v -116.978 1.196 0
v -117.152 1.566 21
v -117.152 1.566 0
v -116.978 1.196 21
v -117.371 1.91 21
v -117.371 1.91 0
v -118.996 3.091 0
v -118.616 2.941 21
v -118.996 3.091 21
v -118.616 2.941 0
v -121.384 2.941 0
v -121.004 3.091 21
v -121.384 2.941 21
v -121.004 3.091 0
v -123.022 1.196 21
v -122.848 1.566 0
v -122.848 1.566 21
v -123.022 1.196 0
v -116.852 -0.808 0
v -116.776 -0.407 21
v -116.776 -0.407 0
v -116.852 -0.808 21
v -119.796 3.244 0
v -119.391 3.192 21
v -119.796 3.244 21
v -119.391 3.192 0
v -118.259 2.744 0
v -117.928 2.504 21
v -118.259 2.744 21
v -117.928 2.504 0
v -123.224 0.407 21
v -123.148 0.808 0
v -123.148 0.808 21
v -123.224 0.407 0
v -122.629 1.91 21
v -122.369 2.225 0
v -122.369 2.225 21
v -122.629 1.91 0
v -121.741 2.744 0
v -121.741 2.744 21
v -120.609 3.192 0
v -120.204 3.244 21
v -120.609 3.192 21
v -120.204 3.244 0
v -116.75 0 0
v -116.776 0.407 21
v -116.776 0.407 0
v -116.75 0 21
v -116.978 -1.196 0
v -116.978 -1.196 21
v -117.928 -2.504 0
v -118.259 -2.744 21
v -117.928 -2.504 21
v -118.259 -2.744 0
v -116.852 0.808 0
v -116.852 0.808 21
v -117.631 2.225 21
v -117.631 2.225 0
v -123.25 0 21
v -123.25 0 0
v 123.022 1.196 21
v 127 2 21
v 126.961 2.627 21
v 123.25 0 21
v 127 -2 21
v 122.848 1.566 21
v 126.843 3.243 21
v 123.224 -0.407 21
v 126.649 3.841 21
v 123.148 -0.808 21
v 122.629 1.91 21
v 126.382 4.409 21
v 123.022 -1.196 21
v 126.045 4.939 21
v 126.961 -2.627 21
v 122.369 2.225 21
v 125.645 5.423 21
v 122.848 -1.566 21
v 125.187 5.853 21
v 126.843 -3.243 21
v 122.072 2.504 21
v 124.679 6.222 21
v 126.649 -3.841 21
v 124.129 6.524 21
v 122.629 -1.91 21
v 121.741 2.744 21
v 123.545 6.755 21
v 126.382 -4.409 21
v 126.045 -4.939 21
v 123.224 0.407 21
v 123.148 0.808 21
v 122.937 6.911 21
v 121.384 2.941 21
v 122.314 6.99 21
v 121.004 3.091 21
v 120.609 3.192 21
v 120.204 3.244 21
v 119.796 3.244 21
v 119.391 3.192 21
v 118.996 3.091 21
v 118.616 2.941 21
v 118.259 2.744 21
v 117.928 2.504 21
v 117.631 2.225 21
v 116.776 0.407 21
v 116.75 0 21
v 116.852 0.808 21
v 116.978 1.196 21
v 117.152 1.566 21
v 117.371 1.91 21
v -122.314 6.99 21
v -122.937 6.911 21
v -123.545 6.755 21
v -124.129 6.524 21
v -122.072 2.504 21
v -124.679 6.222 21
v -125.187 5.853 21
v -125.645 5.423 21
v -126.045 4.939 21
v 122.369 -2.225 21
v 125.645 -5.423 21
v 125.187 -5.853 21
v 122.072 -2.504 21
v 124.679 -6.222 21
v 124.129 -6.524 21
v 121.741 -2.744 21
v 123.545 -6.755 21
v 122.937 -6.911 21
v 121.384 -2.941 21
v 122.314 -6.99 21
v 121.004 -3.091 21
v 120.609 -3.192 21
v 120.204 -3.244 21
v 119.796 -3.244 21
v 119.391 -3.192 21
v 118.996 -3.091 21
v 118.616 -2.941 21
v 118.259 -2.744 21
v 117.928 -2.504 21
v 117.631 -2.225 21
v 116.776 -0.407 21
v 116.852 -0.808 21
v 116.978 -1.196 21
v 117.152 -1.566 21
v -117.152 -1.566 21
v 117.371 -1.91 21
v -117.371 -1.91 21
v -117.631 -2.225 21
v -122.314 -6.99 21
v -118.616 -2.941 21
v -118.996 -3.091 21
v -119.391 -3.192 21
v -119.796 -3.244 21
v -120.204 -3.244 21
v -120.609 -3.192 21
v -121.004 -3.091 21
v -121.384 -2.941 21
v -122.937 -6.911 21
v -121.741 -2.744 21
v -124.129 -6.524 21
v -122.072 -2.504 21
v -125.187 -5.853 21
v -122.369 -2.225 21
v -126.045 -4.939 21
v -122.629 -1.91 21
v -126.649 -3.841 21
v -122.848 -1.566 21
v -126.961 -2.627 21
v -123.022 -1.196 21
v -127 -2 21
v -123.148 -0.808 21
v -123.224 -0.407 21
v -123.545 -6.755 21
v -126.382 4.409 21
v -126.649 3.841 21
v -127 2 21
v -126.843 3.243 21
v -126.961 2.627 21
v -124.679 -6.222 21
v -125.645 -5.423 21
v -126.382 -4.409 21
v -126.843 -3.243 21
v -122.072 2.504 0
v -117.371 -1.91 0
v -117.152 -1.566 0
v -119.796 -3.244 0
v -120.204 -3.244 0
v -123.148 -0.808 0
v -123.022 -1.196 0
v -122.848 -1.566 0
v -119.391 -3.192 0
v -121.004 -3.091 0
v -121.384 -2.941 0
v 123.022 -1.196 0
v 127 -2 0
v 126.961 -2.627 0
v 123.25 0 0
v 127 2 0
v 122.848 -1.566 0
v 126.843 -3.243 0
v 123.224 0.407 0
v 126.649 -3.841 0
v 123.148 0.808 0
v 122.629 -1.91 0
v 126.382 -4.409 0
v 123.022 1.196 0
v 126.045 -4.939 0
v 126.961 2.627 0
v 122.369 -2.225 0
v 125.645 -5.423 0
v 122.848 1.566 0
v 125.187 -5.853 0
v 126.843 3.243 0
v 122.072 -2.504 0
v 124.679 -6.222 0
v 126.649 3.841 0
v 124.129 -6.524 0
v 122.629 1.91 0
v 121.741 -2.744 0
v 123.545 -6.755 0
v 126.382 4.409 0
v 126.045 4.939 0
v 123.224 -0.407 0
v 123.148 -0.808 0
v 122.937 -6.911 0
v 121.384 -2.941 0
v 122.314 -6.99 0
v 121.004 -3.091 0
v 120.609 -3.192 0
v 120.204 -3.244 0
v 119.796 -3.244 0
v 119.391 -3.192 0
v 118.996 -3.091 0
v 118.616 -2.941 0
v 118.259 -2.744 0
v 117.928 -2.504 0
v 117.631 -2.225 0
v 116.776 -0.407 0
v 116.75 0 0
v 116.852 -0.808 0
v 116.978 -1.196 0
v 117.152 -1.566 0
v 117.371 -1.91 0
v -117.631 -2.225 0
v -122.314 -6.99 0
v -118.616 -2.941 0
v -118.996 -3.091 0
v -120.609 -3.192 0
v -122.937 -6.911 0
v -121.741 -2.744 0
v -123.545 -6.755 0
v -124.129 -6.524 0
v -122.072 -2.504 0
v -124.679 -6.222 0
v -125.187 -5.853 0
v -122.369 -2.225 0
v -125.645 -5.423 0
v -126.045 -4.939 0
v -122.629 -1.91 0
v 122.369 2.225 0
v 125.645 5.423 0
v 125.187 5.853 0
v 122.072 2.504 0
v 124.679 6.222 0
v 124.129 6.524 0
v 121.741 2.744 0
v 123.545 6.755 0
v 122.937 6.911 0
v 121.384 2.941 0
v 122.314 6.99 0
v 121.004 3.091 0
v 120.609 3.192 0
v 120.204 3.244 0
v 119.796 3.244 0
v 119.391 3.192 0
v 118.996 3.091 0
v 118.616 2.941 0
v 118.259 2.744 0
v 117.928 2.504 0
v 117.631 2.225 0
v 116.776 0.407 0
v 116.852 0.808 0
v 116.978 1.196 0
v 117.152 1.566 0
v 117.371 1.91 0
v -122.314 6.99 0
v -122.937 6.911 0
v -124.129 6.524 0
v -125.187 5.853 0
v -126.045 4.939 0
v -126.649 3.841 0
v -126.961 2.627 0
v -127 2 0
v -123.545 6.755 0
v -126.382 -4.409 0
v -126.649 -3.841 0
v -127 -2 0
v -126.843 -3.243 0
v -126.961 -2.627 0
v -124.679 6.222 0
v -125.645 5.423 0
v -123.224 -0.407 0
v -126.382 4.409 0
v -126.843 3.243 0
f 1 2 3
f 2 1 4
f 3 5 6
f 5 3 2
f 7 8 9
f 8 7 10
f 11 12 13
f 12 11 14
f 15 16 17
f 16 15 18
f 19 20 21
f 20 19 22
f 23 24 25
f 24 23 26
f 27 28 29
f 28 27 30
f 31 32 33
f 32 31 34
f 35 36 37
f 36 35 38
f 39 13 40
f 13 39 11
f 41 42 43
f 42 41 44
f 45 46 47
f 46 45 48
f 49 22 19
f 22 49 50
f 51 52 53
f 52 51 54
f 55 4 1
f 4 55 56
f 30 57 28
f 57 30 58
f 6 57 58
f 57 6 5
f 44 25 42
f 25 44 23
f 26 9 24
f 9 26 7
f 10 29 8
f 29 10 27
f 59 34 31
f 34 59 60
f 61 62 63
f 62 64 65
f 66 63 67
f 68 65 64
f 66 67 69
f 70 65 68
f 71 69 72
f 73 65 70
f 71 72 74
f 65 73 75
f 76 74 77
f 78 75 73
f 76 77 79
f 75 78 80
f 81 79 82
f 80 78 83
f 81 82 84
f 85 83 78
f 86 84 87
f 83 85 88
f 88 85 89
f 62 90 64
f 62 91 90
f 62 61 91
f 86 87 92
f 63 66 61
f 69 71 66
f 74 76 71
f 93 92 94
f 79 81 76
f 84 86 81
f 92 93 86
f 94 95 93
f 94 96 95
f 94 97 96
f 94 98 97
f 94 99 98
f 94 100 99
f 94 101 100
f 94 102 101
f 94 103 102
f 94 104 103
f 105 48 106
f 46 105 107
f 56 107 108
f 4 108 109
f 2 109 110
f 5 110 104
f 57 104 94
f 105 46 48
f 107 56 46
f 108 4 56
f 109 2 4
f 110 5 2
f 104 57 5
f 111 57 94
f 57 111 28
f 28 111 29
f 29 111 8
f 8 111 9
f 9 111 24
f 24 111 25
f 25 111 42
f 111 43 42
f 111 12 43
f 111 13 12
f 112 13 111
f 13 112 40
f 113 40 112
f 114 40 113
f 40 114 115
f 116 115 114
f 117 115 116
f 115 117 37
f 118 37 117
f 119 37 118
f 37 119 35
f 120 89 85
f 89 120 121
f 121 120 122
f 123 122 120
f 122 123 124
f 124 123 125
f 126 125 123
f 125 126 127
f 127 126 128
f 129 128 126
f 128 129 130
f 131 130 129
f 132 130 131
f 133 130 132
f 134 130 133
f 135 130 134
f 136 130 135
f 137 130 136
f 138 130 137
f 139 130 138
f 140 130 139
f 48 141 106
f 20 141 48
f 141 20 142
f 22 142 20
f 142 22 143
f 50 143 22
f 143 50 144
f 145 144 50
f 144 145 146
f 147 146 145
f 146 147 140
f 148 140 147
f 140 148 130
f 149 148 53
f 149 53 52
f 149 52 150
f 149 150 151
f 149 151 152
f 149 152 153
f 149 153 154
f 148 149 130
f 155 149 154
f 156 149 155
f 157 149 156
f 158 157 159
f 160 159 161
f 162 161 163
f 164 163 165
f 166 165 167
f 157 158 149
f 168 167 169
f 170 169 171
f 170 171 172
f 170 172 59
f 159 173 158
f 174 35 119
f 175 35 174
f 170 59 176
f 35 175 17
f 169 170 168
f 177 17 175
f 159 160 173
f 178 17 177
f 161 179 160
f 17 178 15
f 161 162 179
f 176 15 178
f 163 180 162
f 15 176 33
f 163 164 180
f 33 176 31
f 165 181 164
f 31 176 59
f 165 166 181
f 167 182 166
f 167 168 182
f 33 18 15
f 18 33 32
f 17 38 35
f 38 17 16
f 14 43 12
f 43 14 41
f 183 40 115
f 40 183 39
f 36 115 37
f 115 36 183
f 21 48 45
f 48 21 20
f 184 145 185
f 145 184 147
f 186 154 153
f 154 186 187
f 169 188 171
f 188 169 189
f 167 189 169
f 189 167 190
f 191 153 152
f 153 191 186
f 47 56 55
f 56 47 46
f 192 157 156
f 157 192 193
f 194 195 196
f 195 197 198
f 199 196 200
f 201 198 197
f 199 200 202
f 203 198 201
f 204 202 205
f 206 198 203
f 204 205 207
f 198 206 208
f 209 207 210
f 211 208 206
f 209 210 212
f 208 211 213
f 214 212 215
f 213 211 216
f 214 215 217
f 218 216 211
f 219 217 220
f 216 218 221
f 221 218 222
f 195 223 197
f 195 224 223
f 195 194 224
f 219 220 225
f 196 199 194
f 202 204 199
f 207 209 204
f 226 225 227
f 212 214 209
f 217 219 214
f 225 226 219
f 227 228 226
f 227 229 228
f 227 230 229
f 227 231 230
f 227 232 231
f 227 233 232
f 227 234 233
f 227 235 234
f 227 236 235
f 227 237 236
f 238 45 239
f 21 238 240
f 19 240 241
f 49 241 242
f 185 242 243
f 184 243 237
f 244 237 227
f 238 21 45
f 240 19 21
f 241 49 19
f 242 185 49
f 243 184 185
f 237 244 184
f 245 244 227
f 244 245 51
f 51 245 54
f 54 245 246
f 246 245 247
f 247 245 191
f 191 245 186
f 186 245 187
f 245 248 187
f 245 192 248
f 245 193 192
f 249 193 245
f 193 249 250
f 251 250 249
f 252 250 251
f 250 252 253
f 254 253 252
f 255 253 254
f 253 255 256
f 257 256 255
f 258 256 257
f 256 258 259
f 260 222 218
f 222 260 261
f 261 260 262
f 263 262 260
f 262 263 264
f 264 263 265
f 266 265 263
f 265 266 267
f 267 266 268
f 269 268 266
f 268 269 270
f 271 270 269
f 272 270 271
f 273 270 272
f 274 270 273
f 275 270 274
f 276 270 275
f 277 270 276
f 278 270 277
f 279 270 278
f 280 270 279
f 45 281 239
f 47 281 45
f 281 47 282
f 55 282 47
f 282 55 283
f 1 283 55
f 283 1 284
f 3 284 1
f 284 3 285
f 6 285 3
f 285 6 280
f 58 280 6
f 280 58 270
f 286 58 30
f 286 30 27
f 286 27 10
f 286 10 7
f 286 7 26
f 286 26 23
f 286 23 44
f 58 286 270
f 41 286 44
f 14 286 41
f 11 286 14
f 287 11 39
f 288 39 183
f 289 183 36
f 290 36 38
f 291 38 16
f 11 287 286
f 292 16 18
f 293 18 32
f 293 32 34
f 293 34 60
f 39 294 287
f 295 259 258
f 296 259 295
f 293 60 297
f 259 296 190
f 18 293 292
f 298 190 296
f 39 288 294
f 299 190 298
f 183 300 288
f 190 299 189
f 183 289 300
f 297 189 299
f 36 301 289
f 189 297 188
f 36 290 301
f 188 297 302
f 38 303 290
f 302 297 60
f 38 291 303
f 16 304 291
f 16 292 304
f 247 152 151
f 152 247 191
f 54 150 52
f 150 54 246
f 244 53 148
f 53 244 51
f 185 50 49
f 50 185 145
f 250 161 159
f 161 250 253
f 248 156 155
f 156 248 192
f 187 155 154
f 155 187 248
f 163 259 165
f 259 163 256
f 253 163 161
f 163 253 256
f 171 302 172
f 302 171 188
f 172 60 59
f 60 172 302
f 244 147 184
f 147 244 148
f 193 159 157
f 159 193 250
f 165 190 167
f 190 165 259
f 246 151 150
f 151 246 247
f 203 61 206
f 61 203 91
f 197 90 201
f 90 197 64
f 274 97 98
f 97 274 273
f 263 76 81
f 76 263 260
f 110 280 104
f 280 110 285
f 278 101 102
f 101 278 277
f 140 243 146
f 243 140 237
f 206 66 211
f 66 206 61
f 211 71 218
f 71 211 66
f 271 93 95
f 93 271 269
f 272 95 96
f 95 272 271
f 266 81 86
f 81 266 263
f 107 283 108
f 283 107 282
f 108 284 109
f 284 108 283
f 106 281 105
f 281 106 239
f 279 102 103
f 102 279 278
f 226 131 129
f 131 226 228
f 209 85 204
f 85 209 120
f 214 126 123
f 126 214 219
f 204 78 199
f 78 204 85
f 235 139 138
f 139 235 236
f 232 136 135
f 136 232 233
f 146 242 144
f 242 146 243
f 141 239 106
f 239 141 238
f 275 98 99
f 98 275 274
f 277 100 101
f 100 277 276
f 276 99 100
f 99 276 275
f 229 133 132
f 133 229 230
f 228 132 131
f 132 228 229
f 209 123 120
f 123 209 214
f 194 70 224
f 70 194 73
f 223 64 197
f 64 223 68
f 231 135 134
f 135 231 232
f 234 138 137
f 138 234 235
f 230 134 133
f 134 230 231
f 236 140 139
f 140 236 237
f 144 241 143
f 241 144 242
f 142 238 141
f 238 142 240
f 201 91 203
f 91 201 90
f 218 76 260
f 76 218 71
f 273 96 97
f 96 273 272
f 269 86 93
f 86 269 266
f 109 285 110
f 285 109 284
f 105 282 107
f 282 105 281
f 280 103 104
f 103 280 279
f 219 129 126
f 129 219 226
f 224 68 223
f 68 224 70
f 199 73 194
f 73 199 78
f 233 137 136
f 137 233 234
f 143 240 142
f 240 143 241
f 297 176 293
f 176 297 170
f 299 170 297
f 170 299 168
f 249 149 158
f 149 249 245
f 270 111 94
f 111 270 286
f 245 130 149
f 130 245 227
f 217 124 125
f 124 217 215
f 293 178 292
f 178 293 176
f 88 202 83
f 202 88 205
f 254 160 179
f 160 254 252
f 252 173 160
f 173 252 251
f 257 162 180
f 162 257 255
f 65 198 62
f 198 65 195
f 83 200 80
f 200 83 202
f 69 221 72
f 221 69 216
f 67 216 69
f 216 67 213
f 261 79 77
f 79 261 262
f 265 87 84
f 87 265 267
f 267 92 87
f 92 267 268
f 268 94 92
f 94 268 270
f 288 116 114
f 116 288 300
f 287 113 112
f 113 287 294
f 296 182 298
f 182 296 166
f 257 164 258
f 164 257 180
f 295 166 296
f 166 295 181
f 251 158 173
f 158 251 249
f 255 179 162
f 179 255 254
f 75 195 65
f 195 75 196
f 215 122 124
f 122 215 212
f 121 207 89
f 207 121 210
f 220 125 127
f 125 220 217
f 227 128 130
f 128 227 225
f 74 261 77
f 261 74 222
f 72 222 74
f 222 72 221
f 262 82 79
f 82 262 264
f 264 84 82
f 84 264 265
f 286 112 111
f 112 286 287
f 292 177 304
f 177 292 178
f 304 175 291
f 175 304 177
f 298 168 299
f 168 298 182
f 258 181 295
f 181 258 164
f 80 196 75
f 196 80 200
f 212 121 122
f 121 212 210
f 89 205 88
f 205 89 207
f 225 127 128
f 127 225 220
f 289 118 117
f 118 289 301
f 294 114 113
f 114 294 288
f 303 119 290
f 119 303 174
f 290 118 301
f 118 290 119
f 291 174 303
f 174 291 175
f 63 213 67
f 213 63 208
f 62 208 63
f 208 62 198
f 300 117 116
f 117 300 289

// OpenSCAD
$fn = 50;


difference() {
	union() {
		hull() {
			translate(v = [-122.0000000000, 2.0000000000, 0]) {
				cylinder(h = 21, r = 5);
			}
			translate(v = [122.0000000000, 2.0000000000, 0]) {
				cylinder(h = 21, r = 5);
			}
			translate(v = [-122.0000000000, -2.0000000000, 0]) {
				cylinder(h = 21, r = 5);
			}
			translate(v = [122.0000000000, -2.0000000000, 0]) {
				cylinder(h = 21, r = 5);
			}
		}
	}
	union() {
		translate(v = [-120.0000000000, 0.0000000000, 0]) {
			cylinder(h = 21, r = 3.2500000000);
		}
		translate(v = [120.0000000000, 0.0000000000, 0]) {
			cylinder(h = 21, r = 3.2500000000);
		}
		translate(v = [-120.0000000000, 0.0000000000, 0]) {
			cylinder(h = 21, r = 1.8000000000);
		}
		translate(v = [120.0000000000, 0.0000000000, 0]) {
			cylinder(h = 21, r = 1.8000000000);
		}
		translate(v = [-120.0000000000, 0.0000000000, 0]) {
			cylinder(h = 21, r = 1.8000000000);
		}
		translate(v = [120.0000000000, 0.0000000000, 0]) {
			cylinder(h = 21, r = 1.8000000000);
		}
		translate(v = [-120.0000000000, 0.0000000000, 0]) {
			cylinder(h = 21, r = 1.8000000000);
		}
		translate(v = [120.0000000000, 0.0000000000, 0]) {
			cylinder(h = 21, r = 1.8000000000);
		}
	}
}
